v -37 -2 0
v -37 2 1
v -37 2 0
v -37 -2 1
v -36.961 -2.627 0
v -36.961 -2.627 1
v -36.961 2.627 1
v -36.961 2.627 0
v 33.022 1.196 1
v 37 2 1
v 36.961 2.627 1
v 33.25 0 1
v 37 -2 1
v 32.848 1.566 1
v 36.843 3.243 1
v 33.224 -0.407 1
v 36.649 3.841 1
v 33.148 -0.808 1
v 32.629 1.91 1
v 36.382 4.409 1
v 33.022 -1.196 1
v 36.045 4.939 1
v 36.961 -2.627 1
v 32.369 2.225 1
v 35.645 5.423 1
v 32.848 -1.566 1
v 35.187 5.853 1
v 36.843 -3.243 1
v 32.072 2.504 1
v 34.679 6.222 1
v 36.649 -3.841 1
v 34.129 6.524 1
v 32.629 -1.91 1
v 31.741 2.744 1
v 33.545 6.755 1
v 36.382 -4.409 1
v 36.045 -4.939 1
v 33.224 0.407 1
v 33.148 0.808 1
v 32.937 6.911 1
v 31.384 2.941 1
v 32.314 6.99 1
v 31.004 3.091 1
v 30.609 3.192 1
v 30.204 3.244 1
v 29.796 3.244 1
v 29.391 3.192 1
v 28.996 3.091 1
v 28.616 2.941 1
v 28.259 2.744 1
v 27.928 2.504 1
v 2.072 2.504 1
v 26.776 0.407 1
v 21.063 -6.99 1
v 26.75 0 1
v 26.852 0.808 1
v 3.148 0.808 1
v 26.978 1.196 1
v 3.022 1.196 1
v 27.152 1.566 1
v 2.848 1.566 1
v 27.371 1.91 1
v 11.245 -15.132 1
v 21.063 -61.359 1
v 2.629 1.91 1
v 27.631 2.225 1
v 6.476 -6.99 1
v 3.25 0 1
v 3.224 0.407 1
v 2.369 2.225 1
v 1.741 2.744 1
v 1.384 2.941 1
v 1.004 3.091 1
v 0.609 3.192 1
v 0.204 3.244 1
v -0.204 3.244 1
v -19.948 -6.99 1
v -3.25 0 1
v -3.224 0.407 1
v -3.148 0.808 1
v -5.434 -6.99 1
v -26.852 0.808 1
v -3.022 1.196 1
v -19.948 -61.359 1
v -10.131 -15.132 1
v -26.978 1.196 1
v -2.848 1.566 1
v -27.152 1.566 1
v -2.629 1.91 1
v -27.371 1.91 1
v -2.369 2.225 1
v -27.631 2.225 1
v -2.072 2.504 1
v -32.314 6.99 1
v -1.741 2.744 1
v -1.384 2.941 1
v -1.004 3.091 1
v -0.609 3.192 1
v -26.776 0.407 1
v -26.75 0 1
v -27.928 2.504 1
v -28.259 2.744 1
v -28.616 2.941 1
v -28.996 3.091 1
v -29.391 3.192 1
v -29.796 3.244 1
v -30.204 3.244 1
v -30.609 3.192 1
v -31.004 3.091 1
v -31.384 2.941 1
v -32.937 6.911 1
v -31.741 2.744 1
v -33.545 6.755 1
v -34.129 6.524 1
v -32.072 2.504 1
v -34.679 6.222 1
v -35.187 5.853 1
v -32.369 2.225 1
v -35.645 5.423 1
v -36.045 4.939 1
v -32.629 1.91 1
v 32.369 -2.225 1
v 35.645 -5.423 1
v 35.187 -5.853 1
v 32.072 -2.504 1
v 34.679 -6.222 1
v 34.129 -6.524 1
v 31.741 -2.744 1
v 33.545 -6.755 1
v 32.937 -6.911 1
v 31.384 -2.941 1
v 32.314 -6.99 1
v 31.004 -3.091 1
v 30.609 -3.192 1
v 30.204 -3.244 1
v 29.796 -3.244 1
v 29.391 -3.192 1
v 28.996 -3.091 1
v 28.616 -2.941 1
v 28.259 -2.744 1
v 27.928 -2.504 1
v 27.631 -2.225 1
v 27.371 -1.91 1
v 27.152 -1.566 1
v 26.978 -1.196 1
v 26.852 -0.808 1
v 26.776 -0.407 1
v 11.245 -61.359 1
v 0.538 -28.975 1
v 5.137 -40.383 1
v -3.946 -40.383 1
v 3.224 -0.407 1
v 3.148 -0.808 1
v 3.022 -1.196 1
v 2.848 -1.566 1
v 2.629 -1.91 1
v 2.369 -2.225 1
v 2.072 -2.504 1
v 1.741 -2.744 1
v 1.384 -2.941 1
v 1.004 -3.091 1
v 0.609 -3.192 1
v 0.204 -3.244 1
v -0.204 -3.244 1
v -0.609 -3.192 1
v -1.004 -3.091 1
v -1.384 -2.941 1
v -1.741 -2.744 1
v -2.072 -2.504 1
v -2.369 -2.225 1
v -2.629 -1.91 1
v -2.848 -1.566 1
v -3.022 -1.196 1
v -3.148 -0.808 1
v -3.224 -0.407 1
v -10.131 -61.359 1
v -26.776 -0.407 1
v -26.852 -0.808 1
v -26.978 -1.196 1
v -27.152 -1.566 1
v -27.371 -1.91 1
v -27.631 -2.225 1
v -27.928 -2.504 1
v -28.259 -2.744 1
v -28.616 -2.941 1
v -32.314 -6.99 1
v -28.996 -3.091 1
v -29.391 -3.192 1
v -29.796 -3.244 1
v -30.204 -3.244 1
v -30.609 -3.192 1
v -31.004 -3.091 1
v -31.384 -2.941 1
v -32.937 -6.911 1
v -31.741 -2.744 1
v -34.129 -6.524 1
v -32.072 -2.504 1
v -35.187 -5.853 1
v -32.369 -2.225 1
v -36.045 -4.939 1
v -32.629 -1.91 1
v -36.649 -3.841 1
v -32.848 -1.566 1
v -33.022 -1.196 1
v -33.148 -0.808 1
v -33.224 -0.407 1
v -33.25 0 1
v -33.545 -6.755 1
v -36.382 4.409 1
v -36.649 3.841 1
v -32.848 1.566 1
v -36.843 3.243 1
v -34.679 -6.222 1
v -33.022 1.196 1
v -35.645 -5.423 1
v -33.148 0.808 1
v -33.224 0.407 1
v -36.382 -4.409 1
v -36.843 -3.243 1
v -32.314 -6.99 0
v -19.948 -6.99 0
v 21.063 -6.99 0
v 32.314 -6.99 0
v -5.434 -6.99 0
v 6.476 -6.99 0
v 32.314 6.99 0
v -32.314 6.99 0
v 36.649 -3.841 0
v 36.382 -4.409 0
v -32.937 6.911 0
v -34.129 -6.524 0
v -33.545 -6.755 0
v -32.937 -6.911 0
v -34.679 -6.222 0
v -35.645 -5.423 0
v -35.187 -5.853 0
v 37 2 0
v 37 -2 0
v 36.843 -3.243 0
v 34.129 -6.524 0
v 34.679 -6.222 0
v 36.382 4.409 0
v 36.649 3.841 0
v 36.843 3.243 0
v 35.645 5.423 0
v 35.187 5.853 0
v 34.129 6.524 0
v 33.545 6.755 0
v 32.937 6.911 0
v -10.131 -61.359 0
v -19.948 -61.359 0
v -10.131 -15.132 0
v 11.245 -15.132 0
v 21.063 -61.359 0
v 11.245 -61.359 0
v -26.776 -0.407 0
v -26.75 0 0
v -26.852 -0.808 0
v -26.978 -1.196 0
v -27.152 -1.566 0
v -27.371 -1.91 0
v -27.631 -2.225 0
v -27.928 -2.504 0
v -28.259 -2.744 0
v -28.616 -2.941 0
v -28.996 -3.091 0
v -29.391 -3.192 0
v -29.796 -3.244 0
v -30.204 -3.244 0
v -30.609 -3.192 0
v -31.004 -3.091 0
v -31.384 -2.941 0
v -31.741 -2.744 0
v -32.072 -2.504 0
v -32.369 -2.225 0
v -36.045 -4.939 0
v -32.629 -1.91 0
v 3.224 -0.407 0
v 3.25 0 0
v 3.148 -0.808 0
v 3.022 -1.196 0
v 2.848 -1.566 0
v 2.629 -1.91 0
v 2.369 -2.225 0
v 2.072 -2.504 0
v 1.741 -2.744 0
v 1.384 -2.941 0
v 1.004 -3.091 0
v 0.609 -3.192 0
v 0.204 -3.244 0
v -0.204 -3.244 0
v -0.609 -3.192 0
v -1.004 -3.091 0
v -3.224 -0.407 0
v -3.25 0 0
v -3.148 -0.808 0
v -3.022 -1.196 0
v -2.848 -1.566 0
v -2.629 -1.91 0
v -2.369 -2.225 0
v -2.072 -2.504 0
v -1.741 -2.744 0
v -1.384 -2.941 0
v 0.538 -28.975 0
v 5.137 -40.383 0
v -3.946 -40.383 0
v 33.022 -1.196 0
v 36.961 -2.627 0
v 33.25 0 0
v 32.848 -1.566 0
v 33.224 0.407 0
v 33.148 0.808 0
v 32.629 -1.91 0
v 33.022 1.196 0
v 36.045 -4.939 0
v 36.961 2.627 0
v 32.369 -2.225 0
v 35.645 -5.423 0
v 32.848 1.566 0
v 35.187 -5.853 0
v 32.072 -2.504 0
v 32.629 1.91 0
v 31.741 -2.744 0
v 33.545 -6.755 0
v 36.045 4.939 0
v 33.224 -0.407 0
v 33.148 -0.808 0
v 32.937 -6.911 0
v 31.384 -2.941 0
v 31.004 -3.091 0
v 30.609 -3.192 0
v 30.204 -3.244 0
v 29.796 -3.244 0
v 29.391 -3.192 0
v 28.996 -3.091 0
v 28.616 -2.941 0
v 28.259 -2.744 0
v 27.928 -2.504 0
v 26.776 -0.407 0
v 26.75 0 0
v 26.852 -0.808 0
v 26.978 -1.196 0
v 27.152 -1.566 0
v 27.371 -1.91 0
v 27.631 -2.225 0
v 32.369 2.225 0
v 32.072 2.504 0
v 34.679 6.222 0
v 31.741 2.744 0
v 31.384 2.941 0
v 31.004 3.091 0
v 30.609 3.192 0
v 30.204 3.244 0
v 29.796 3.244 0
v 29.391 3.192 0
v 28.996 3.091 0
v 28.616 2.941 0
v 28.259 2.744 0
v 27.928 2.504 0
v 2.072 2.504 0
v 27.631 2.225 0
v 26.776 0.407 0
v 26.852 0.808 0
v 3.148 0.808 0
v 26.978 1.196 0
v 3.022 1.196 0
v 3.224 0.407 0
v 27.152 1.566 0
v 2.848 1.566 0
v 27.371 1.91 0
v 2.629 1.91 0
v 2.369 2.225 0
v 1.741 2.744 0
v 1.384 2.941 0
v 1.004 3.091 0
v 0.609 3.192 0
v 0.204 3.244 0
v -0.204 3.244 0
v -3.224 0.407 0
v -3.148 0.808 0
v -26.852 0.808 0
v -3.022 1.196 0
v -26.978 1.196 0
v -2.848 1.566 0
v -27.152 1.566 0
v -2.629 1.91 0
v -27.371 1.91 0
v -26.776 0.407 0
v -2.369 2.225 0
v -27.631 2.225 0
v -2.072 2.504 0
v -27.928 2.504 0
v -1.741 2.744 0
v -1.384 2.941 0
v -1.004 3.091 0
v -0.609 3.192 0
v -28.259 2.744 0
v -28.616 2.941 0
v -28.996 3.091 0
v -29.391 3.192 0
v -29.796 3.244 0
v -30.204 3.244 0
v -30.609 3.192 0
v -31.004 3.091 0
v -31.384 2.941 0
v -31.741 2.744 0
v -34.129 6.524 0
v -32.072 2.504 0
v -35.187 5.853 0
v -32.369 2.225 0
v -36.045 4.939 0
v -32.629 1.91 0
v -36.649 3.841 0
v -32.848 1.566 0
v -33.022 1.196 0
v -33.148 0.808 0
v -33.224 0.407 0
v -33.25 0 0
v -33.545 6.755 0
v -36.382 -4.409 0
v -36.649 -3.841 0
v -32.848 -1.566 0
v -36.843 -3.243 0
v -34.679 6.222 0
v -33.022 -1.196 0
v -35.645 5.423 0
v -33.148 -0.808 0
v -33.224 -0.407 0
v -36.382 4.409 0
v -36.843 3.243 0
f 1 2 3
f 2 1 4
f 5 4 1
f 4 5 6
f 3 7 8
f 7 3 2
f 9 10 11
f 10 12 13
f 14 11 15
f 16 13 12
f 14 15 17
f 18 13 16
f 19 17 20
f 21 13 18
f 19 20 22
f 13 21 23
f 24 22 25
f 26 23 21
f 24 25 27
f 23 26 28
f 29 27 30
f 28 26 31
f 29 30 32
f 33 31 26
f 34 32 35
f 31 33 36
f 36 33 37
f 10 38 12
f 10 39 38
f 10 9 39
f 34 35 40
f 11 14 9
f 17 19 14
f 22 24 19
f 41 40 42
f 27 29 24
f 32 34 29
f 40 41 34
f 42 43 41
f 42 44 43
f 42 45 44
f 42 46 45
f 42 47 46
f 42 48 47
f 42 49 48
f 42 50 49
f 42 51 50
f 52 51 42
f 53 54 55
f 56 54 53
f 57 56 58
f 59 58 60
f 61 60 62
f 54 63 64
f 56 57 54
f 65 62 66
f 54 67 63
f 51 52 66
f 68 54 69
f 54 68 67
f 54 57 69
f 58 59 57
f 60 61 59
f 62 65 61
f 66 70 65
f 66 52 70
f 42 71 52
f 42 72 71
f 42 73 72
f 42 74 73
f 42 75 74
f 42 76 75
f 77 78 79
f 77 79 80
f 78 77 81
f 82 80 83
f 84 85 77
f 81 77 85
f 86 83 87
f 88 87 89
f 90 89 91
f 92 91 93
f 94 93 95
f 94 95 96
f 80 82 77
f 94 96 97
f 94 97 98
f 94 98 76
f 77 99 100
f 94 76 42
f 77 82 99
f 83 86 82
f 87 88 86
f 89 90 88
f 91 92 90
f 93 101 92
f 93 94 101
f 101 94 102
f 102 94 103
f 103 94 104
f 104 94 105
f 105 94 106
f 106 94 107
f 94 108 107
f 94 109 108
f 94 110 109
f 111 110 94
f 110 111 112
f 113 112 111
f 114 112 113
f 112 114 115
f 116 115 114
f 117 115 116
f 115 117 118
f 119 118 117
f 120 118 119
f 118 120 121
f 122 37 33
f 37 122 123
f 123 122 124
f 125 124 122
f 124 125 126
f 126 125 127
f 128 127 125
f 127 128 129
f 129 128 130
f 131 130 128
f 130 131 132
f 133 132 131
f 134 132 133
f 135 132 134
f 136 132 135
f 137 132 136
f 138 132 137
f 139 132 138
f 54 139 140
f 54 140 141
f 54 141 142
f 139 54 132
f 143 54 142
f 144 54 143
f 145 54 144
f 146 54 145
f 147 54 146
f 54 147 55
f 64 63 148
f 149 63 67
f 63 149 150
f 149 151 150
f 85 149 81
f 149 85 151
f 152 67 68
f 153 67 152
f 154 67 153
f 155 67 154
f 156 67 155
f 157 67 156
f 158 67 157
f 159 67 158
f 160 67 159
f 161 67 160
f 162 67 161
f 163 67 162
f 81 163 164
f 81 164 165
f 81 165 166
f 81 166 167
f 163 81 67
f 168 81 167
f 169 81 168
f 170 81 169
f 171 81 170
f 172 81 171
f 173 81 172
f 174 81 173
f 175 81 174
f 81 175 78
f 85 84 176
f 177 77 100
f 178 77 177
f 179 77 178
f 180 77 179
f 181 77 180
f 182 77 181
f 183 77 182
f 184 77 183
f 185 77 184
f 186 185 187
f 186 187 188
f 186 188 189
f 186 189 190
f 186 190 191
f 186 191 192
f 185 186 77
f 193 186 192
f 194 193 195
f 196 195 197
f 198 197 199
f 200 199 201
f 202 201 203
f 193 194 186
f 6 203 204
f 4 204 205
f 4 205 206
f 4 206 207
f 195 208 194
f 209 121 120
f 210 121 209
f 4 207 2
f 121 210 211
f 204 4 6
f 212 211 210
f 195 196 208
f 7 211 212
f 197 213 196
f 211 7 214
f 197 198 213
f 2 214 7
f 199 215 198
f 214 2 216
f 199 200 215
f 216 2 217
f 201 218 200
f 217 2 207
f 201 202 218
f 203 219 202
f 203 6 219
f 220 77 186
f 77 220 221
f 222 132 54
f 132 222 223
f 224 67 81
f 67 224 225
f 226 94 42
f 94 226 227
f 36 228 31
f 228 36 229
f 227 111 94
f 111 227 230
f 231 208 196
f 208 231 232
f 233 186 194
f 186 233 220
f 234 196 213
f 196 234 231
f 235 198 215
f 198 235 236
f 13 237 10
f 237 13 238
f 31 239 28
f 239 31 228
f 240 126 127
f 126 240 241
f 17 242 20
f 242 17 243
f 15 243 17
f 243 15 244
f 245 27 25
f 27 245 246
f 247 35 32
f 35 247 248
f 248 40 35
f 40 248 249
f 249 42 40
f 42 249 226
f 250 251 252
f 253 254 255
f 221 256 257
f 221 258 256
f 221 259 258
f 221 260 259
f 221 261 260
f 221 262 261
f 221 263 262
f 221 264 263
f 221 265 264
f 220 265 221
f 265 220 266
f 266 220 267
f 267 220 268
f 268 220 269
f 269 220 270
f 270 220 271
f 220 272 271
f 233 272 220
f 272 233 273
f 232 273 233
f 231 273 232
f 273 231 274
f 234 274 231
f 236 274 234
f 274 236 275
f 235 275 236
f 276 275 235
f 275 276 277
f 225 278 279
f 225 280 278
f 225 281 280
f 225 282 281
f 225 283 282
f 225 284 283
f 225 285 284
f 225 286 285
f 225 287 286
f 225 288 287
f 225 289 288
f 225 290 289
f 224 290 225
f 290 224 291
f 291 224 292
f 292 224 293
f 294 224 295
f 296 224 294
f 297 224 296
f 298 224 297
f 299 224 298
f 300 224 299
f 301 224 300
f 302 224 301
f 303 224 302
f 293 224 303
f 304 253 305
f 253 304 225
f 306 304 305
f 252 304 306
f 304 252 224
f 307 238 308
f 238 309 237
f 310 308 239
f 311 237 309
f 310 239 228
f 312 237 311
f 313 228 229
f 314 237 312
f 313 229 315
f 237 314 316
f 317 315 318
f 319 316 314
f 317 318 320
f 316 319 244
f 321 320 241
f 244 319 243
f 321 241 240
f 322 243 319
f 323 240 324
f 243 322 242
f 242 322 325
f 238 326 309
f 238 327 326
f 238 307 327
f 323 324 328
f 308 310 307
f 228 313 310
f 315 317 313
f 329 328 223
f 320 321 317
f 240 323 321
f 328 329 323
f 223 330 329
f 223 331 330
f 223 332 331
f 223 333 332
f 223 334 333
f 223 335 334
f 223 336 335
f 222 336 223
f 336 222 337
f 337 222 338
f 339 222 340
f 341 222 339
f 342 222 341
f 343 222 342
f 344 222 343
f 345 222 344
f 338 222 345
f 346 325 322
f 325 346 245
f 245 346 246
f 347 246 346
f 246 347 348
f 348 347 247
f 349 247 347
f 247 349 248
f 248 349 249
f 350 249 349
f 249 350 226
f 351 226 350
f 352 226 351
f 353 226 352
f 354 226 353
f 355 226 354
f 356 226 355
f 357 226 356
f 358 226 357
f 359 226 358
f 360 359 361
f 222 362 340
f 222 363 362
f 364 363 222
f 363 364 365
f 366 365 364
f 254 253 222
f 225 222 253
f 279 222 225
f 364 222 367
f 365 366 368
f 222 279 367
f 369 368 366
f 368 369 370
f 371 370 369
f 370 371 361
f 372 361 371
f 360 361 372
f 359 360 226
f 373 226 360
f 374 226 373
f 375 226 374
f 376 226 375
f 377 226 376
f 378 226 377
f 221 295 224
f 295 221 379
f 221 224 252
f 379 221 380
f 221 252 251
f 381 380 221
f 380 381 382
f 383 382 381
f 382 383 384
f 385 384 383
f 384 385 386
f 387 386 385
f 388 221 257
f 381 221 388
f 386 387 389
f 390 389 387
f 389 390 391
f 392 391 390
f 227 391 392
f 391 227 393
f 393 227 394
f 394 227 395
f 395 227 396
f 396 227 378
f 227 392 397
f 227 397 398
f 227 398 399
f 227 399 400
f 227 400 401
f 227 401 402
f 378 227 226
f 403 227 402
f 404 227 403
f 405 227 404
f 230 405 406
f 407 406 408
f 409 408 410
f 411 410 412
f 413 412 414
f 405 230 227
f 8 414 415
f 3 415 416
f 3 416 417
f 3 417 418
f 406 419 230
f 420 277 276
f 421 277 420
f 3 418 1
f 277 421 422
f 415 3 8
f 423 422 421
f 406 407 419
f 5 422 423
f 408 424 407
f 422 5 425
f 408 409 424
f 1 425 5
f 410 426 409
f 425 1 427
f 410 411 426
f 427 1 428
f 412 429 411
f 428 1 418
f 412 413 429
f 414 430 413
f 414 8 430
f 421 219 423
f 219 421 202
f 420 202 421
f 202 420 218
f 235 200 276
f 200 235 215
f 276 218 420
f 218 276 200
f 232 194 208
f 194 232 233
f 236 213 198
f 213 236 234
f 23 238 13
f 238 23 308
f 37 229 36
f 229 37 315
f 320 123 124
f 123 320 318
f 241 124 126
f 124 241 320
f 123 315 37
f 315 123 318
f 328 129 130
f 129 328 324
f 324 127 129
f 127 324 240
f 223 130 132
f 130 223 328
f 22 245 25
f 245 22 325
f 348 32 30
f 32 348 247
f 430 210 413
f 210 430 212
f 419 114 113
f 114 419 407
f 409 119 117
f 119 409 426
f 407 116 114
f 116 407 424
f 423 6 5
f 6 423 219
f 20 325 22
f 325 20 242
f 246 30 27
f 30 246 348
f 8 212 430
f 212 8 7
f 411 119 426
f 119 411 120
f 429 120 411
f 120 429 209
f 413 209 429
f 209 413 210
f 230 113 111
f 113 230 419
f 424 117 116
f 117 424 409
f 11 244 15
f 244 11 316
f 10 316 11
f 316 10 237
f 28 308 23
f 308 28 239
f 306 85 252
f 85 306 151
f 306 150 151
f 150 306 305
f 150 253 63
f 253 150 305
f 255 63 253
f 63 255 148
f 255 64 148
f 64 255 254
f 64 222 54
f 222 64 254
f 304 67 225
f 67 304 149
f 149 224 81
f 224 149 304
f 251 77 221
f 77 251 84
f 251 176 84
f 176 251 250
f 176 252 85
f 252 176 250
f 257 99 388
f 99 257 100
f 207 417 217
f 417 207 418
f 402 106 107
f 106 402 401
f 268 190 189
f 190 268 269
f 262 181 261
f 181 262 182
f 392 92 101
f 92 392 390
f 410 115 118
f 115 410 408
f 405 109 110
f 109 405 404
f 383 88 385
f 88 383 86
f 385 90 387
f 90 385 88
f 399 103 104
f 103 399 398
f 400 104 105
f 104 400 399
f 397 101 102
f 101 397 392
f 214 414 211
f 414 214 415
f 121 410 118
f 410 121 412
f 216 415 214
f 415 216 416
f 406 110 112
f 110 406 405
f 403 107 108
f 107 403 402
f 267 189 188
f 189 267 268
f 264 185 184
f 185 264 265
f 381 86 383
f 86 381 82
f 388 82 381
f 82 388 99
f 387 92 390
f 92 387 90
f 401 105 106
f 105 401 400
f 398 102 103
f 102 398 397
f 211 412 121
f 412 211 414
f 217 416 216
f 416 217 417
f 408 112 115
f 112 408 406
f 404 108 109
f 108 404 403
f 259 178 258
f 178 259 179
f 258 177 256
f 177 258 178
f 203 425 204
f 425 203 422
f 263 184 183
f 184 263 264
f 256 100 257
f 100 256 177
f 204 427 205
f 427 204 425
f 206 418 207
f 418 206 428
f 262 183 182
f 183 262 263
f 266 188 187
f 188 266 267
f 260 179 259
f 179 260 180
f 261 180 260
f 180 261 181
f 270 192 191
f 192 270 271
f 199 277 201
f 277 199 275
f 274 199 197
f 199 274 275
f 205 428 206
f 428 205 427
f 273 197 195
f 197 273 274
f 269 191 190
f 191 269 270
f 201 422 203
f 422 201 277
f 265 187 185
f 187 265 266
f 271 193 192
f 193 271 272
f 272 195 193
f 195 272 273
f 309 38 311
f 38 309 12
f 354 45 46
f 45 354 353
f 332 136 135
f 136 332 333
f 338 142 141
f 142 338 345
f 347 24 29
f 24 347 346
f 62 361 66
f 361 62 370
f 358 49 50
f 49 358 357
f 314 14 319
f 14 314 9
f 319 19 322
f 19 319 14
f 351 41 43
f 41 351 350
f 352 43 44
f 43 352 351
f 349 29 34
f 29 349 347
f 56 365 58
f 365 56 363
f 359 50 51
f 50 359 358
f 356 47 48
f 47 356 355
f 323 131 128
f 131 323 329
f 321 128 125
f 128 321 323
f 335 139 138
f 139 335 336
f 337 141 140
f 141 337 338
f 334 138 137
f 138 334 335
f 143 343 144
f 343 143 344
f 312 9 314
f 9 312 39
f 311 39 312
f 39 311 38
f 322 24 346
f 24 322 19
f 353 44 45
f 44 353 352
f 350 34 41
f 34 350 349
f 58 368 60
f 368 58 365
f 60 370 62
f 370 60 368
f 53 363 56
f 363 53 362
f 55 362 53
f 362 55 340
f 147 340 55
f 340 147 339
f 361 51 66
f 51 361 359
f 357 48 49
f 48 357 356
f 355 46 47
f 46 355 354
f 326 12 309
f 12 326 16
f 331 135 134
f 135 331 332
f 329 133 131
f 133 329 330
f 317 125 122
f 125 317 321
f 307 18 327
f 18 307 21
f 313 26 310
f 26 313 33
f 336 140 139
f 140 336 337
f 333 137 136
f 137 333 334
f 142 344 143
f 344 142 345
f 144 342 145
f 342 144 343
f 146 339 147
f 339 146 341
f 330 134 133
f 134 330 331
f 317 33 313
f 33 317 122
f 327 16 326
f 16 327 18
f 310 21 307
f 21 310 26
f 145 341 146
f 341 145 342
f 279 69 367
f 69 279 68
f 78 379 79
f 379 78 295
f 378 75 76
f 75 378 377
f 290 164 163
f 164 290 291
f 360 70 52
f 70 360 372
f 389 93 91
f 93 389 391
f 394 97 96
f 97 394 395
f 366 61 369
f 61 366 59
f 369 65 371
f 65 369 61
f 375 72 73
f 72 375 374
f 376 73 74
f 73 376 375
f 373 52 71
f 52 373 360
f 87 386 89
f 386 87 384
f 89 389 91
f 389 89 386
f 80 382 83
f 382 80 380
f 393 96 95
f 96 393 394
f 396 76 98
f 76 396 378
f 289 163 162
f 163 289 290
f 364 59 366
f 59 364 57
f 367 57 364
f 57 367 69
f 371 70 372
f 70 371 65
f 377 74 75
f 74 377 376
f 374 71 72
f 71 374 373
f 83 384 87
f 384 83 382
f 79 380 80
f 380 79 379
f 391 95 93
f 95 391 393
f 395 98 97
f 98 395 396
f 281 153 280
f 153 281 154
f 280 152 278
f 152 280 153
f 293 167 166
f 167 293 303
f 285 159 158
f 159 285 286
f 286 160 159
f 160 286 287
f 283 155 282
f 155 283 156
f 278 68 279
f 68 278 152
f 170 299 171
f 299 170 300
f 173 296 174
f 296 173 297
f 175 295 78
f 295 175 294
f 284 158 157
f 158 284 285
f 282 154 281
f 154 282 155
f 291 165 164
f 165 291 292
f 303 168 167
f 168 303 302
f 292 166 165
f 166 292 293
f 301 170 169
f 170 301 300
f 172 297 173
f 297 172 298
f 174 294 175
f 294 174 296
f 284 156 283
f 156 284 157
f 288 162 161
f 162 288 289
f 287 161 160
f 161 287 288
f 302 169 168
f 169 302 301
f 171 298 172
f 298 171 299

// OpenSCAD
$fn = 50;


difference() {
	union() {
		translate(v = [0, 0, 0]) {
			rotate(a = [0, 0, 0]) {
				hull() {
					translate(v = [-32.0000000000, 2.0000000000, 0]) {
						rotate(a = [0, 0, 0]) {
							translate(v = [0, 0, 0]) {
								rotate(a = [0, 0, 0]) {
									cylinder(h = 1, r = 5);
								}
							}
						}
					}
					translate(v = [32.0000000000, 2.0000000000, 0]) {
						rotate(a = [0, 0, 0]) {
							translate(v = [0, 0, 0]) {
								rotate(a = [0, 0, 0]) {
									cylinder(h = 1, r = 5);
								}
							}
						}
					}
					translate(v = [-32.0000000000, -2.0000000000, 0]) {
						rotate(a = [0, 0, 0]) {
							translate(v = [0, 0, 0]) {
								rotate(a = [0, 0, 0]) {
									cylinder(h = 1, r = 5);
								}
							}
						}
					}
					translate(v = [32.0000000000, -2.0000000000, 0]) {
						rotate(a = [0, 0, 0]) {
							translate(v = [0, 0, 0]) {
								rotate(a = [0, 0, 0]) {
									cylinder(h = 1, r = 5);
								}
							}
						}
					}
				}
			}
		}
		translate(v = [0, -5, 0]) {
			rotate(a = [0, 0, 0]) {
				linear_extrude(height = 1) {
					text(font = "DejaVu Sans Mono:style=Bold", halign = "center", size = 57.0000000000, text = "M", valign = "top");
				}
			}
		}
	}
	union() {
		translate(v = [-30.0000000000, 0.0000000000, -125.0000000000]) {
			rotate(a = [0, 0, 0]) {
				cylinder(h = 250, r = 3.2500000000);
			}
		}
		translate(v = [30.0000000000, 0.0000000000, -125.0000000000]) {
			rotate(a = [0, 0, 0]) {
				cylinder(h = 250, r = 3.2500000000);
			}
		}
		translate(v = [30.0000000000, 0.0000000000, -125.0000000000]) {
			rotate(a = [0, 0, 0]) {
				cylinder(h = 250, r = 3.2500000000);
			}
		}
		translate(v = [0, 0, -125.0000000000]) {
			rotate(a = [0, 0, 0]) {
				cylinder(h = 250, r = 3.2500000000);
			}
		}
	}
}
